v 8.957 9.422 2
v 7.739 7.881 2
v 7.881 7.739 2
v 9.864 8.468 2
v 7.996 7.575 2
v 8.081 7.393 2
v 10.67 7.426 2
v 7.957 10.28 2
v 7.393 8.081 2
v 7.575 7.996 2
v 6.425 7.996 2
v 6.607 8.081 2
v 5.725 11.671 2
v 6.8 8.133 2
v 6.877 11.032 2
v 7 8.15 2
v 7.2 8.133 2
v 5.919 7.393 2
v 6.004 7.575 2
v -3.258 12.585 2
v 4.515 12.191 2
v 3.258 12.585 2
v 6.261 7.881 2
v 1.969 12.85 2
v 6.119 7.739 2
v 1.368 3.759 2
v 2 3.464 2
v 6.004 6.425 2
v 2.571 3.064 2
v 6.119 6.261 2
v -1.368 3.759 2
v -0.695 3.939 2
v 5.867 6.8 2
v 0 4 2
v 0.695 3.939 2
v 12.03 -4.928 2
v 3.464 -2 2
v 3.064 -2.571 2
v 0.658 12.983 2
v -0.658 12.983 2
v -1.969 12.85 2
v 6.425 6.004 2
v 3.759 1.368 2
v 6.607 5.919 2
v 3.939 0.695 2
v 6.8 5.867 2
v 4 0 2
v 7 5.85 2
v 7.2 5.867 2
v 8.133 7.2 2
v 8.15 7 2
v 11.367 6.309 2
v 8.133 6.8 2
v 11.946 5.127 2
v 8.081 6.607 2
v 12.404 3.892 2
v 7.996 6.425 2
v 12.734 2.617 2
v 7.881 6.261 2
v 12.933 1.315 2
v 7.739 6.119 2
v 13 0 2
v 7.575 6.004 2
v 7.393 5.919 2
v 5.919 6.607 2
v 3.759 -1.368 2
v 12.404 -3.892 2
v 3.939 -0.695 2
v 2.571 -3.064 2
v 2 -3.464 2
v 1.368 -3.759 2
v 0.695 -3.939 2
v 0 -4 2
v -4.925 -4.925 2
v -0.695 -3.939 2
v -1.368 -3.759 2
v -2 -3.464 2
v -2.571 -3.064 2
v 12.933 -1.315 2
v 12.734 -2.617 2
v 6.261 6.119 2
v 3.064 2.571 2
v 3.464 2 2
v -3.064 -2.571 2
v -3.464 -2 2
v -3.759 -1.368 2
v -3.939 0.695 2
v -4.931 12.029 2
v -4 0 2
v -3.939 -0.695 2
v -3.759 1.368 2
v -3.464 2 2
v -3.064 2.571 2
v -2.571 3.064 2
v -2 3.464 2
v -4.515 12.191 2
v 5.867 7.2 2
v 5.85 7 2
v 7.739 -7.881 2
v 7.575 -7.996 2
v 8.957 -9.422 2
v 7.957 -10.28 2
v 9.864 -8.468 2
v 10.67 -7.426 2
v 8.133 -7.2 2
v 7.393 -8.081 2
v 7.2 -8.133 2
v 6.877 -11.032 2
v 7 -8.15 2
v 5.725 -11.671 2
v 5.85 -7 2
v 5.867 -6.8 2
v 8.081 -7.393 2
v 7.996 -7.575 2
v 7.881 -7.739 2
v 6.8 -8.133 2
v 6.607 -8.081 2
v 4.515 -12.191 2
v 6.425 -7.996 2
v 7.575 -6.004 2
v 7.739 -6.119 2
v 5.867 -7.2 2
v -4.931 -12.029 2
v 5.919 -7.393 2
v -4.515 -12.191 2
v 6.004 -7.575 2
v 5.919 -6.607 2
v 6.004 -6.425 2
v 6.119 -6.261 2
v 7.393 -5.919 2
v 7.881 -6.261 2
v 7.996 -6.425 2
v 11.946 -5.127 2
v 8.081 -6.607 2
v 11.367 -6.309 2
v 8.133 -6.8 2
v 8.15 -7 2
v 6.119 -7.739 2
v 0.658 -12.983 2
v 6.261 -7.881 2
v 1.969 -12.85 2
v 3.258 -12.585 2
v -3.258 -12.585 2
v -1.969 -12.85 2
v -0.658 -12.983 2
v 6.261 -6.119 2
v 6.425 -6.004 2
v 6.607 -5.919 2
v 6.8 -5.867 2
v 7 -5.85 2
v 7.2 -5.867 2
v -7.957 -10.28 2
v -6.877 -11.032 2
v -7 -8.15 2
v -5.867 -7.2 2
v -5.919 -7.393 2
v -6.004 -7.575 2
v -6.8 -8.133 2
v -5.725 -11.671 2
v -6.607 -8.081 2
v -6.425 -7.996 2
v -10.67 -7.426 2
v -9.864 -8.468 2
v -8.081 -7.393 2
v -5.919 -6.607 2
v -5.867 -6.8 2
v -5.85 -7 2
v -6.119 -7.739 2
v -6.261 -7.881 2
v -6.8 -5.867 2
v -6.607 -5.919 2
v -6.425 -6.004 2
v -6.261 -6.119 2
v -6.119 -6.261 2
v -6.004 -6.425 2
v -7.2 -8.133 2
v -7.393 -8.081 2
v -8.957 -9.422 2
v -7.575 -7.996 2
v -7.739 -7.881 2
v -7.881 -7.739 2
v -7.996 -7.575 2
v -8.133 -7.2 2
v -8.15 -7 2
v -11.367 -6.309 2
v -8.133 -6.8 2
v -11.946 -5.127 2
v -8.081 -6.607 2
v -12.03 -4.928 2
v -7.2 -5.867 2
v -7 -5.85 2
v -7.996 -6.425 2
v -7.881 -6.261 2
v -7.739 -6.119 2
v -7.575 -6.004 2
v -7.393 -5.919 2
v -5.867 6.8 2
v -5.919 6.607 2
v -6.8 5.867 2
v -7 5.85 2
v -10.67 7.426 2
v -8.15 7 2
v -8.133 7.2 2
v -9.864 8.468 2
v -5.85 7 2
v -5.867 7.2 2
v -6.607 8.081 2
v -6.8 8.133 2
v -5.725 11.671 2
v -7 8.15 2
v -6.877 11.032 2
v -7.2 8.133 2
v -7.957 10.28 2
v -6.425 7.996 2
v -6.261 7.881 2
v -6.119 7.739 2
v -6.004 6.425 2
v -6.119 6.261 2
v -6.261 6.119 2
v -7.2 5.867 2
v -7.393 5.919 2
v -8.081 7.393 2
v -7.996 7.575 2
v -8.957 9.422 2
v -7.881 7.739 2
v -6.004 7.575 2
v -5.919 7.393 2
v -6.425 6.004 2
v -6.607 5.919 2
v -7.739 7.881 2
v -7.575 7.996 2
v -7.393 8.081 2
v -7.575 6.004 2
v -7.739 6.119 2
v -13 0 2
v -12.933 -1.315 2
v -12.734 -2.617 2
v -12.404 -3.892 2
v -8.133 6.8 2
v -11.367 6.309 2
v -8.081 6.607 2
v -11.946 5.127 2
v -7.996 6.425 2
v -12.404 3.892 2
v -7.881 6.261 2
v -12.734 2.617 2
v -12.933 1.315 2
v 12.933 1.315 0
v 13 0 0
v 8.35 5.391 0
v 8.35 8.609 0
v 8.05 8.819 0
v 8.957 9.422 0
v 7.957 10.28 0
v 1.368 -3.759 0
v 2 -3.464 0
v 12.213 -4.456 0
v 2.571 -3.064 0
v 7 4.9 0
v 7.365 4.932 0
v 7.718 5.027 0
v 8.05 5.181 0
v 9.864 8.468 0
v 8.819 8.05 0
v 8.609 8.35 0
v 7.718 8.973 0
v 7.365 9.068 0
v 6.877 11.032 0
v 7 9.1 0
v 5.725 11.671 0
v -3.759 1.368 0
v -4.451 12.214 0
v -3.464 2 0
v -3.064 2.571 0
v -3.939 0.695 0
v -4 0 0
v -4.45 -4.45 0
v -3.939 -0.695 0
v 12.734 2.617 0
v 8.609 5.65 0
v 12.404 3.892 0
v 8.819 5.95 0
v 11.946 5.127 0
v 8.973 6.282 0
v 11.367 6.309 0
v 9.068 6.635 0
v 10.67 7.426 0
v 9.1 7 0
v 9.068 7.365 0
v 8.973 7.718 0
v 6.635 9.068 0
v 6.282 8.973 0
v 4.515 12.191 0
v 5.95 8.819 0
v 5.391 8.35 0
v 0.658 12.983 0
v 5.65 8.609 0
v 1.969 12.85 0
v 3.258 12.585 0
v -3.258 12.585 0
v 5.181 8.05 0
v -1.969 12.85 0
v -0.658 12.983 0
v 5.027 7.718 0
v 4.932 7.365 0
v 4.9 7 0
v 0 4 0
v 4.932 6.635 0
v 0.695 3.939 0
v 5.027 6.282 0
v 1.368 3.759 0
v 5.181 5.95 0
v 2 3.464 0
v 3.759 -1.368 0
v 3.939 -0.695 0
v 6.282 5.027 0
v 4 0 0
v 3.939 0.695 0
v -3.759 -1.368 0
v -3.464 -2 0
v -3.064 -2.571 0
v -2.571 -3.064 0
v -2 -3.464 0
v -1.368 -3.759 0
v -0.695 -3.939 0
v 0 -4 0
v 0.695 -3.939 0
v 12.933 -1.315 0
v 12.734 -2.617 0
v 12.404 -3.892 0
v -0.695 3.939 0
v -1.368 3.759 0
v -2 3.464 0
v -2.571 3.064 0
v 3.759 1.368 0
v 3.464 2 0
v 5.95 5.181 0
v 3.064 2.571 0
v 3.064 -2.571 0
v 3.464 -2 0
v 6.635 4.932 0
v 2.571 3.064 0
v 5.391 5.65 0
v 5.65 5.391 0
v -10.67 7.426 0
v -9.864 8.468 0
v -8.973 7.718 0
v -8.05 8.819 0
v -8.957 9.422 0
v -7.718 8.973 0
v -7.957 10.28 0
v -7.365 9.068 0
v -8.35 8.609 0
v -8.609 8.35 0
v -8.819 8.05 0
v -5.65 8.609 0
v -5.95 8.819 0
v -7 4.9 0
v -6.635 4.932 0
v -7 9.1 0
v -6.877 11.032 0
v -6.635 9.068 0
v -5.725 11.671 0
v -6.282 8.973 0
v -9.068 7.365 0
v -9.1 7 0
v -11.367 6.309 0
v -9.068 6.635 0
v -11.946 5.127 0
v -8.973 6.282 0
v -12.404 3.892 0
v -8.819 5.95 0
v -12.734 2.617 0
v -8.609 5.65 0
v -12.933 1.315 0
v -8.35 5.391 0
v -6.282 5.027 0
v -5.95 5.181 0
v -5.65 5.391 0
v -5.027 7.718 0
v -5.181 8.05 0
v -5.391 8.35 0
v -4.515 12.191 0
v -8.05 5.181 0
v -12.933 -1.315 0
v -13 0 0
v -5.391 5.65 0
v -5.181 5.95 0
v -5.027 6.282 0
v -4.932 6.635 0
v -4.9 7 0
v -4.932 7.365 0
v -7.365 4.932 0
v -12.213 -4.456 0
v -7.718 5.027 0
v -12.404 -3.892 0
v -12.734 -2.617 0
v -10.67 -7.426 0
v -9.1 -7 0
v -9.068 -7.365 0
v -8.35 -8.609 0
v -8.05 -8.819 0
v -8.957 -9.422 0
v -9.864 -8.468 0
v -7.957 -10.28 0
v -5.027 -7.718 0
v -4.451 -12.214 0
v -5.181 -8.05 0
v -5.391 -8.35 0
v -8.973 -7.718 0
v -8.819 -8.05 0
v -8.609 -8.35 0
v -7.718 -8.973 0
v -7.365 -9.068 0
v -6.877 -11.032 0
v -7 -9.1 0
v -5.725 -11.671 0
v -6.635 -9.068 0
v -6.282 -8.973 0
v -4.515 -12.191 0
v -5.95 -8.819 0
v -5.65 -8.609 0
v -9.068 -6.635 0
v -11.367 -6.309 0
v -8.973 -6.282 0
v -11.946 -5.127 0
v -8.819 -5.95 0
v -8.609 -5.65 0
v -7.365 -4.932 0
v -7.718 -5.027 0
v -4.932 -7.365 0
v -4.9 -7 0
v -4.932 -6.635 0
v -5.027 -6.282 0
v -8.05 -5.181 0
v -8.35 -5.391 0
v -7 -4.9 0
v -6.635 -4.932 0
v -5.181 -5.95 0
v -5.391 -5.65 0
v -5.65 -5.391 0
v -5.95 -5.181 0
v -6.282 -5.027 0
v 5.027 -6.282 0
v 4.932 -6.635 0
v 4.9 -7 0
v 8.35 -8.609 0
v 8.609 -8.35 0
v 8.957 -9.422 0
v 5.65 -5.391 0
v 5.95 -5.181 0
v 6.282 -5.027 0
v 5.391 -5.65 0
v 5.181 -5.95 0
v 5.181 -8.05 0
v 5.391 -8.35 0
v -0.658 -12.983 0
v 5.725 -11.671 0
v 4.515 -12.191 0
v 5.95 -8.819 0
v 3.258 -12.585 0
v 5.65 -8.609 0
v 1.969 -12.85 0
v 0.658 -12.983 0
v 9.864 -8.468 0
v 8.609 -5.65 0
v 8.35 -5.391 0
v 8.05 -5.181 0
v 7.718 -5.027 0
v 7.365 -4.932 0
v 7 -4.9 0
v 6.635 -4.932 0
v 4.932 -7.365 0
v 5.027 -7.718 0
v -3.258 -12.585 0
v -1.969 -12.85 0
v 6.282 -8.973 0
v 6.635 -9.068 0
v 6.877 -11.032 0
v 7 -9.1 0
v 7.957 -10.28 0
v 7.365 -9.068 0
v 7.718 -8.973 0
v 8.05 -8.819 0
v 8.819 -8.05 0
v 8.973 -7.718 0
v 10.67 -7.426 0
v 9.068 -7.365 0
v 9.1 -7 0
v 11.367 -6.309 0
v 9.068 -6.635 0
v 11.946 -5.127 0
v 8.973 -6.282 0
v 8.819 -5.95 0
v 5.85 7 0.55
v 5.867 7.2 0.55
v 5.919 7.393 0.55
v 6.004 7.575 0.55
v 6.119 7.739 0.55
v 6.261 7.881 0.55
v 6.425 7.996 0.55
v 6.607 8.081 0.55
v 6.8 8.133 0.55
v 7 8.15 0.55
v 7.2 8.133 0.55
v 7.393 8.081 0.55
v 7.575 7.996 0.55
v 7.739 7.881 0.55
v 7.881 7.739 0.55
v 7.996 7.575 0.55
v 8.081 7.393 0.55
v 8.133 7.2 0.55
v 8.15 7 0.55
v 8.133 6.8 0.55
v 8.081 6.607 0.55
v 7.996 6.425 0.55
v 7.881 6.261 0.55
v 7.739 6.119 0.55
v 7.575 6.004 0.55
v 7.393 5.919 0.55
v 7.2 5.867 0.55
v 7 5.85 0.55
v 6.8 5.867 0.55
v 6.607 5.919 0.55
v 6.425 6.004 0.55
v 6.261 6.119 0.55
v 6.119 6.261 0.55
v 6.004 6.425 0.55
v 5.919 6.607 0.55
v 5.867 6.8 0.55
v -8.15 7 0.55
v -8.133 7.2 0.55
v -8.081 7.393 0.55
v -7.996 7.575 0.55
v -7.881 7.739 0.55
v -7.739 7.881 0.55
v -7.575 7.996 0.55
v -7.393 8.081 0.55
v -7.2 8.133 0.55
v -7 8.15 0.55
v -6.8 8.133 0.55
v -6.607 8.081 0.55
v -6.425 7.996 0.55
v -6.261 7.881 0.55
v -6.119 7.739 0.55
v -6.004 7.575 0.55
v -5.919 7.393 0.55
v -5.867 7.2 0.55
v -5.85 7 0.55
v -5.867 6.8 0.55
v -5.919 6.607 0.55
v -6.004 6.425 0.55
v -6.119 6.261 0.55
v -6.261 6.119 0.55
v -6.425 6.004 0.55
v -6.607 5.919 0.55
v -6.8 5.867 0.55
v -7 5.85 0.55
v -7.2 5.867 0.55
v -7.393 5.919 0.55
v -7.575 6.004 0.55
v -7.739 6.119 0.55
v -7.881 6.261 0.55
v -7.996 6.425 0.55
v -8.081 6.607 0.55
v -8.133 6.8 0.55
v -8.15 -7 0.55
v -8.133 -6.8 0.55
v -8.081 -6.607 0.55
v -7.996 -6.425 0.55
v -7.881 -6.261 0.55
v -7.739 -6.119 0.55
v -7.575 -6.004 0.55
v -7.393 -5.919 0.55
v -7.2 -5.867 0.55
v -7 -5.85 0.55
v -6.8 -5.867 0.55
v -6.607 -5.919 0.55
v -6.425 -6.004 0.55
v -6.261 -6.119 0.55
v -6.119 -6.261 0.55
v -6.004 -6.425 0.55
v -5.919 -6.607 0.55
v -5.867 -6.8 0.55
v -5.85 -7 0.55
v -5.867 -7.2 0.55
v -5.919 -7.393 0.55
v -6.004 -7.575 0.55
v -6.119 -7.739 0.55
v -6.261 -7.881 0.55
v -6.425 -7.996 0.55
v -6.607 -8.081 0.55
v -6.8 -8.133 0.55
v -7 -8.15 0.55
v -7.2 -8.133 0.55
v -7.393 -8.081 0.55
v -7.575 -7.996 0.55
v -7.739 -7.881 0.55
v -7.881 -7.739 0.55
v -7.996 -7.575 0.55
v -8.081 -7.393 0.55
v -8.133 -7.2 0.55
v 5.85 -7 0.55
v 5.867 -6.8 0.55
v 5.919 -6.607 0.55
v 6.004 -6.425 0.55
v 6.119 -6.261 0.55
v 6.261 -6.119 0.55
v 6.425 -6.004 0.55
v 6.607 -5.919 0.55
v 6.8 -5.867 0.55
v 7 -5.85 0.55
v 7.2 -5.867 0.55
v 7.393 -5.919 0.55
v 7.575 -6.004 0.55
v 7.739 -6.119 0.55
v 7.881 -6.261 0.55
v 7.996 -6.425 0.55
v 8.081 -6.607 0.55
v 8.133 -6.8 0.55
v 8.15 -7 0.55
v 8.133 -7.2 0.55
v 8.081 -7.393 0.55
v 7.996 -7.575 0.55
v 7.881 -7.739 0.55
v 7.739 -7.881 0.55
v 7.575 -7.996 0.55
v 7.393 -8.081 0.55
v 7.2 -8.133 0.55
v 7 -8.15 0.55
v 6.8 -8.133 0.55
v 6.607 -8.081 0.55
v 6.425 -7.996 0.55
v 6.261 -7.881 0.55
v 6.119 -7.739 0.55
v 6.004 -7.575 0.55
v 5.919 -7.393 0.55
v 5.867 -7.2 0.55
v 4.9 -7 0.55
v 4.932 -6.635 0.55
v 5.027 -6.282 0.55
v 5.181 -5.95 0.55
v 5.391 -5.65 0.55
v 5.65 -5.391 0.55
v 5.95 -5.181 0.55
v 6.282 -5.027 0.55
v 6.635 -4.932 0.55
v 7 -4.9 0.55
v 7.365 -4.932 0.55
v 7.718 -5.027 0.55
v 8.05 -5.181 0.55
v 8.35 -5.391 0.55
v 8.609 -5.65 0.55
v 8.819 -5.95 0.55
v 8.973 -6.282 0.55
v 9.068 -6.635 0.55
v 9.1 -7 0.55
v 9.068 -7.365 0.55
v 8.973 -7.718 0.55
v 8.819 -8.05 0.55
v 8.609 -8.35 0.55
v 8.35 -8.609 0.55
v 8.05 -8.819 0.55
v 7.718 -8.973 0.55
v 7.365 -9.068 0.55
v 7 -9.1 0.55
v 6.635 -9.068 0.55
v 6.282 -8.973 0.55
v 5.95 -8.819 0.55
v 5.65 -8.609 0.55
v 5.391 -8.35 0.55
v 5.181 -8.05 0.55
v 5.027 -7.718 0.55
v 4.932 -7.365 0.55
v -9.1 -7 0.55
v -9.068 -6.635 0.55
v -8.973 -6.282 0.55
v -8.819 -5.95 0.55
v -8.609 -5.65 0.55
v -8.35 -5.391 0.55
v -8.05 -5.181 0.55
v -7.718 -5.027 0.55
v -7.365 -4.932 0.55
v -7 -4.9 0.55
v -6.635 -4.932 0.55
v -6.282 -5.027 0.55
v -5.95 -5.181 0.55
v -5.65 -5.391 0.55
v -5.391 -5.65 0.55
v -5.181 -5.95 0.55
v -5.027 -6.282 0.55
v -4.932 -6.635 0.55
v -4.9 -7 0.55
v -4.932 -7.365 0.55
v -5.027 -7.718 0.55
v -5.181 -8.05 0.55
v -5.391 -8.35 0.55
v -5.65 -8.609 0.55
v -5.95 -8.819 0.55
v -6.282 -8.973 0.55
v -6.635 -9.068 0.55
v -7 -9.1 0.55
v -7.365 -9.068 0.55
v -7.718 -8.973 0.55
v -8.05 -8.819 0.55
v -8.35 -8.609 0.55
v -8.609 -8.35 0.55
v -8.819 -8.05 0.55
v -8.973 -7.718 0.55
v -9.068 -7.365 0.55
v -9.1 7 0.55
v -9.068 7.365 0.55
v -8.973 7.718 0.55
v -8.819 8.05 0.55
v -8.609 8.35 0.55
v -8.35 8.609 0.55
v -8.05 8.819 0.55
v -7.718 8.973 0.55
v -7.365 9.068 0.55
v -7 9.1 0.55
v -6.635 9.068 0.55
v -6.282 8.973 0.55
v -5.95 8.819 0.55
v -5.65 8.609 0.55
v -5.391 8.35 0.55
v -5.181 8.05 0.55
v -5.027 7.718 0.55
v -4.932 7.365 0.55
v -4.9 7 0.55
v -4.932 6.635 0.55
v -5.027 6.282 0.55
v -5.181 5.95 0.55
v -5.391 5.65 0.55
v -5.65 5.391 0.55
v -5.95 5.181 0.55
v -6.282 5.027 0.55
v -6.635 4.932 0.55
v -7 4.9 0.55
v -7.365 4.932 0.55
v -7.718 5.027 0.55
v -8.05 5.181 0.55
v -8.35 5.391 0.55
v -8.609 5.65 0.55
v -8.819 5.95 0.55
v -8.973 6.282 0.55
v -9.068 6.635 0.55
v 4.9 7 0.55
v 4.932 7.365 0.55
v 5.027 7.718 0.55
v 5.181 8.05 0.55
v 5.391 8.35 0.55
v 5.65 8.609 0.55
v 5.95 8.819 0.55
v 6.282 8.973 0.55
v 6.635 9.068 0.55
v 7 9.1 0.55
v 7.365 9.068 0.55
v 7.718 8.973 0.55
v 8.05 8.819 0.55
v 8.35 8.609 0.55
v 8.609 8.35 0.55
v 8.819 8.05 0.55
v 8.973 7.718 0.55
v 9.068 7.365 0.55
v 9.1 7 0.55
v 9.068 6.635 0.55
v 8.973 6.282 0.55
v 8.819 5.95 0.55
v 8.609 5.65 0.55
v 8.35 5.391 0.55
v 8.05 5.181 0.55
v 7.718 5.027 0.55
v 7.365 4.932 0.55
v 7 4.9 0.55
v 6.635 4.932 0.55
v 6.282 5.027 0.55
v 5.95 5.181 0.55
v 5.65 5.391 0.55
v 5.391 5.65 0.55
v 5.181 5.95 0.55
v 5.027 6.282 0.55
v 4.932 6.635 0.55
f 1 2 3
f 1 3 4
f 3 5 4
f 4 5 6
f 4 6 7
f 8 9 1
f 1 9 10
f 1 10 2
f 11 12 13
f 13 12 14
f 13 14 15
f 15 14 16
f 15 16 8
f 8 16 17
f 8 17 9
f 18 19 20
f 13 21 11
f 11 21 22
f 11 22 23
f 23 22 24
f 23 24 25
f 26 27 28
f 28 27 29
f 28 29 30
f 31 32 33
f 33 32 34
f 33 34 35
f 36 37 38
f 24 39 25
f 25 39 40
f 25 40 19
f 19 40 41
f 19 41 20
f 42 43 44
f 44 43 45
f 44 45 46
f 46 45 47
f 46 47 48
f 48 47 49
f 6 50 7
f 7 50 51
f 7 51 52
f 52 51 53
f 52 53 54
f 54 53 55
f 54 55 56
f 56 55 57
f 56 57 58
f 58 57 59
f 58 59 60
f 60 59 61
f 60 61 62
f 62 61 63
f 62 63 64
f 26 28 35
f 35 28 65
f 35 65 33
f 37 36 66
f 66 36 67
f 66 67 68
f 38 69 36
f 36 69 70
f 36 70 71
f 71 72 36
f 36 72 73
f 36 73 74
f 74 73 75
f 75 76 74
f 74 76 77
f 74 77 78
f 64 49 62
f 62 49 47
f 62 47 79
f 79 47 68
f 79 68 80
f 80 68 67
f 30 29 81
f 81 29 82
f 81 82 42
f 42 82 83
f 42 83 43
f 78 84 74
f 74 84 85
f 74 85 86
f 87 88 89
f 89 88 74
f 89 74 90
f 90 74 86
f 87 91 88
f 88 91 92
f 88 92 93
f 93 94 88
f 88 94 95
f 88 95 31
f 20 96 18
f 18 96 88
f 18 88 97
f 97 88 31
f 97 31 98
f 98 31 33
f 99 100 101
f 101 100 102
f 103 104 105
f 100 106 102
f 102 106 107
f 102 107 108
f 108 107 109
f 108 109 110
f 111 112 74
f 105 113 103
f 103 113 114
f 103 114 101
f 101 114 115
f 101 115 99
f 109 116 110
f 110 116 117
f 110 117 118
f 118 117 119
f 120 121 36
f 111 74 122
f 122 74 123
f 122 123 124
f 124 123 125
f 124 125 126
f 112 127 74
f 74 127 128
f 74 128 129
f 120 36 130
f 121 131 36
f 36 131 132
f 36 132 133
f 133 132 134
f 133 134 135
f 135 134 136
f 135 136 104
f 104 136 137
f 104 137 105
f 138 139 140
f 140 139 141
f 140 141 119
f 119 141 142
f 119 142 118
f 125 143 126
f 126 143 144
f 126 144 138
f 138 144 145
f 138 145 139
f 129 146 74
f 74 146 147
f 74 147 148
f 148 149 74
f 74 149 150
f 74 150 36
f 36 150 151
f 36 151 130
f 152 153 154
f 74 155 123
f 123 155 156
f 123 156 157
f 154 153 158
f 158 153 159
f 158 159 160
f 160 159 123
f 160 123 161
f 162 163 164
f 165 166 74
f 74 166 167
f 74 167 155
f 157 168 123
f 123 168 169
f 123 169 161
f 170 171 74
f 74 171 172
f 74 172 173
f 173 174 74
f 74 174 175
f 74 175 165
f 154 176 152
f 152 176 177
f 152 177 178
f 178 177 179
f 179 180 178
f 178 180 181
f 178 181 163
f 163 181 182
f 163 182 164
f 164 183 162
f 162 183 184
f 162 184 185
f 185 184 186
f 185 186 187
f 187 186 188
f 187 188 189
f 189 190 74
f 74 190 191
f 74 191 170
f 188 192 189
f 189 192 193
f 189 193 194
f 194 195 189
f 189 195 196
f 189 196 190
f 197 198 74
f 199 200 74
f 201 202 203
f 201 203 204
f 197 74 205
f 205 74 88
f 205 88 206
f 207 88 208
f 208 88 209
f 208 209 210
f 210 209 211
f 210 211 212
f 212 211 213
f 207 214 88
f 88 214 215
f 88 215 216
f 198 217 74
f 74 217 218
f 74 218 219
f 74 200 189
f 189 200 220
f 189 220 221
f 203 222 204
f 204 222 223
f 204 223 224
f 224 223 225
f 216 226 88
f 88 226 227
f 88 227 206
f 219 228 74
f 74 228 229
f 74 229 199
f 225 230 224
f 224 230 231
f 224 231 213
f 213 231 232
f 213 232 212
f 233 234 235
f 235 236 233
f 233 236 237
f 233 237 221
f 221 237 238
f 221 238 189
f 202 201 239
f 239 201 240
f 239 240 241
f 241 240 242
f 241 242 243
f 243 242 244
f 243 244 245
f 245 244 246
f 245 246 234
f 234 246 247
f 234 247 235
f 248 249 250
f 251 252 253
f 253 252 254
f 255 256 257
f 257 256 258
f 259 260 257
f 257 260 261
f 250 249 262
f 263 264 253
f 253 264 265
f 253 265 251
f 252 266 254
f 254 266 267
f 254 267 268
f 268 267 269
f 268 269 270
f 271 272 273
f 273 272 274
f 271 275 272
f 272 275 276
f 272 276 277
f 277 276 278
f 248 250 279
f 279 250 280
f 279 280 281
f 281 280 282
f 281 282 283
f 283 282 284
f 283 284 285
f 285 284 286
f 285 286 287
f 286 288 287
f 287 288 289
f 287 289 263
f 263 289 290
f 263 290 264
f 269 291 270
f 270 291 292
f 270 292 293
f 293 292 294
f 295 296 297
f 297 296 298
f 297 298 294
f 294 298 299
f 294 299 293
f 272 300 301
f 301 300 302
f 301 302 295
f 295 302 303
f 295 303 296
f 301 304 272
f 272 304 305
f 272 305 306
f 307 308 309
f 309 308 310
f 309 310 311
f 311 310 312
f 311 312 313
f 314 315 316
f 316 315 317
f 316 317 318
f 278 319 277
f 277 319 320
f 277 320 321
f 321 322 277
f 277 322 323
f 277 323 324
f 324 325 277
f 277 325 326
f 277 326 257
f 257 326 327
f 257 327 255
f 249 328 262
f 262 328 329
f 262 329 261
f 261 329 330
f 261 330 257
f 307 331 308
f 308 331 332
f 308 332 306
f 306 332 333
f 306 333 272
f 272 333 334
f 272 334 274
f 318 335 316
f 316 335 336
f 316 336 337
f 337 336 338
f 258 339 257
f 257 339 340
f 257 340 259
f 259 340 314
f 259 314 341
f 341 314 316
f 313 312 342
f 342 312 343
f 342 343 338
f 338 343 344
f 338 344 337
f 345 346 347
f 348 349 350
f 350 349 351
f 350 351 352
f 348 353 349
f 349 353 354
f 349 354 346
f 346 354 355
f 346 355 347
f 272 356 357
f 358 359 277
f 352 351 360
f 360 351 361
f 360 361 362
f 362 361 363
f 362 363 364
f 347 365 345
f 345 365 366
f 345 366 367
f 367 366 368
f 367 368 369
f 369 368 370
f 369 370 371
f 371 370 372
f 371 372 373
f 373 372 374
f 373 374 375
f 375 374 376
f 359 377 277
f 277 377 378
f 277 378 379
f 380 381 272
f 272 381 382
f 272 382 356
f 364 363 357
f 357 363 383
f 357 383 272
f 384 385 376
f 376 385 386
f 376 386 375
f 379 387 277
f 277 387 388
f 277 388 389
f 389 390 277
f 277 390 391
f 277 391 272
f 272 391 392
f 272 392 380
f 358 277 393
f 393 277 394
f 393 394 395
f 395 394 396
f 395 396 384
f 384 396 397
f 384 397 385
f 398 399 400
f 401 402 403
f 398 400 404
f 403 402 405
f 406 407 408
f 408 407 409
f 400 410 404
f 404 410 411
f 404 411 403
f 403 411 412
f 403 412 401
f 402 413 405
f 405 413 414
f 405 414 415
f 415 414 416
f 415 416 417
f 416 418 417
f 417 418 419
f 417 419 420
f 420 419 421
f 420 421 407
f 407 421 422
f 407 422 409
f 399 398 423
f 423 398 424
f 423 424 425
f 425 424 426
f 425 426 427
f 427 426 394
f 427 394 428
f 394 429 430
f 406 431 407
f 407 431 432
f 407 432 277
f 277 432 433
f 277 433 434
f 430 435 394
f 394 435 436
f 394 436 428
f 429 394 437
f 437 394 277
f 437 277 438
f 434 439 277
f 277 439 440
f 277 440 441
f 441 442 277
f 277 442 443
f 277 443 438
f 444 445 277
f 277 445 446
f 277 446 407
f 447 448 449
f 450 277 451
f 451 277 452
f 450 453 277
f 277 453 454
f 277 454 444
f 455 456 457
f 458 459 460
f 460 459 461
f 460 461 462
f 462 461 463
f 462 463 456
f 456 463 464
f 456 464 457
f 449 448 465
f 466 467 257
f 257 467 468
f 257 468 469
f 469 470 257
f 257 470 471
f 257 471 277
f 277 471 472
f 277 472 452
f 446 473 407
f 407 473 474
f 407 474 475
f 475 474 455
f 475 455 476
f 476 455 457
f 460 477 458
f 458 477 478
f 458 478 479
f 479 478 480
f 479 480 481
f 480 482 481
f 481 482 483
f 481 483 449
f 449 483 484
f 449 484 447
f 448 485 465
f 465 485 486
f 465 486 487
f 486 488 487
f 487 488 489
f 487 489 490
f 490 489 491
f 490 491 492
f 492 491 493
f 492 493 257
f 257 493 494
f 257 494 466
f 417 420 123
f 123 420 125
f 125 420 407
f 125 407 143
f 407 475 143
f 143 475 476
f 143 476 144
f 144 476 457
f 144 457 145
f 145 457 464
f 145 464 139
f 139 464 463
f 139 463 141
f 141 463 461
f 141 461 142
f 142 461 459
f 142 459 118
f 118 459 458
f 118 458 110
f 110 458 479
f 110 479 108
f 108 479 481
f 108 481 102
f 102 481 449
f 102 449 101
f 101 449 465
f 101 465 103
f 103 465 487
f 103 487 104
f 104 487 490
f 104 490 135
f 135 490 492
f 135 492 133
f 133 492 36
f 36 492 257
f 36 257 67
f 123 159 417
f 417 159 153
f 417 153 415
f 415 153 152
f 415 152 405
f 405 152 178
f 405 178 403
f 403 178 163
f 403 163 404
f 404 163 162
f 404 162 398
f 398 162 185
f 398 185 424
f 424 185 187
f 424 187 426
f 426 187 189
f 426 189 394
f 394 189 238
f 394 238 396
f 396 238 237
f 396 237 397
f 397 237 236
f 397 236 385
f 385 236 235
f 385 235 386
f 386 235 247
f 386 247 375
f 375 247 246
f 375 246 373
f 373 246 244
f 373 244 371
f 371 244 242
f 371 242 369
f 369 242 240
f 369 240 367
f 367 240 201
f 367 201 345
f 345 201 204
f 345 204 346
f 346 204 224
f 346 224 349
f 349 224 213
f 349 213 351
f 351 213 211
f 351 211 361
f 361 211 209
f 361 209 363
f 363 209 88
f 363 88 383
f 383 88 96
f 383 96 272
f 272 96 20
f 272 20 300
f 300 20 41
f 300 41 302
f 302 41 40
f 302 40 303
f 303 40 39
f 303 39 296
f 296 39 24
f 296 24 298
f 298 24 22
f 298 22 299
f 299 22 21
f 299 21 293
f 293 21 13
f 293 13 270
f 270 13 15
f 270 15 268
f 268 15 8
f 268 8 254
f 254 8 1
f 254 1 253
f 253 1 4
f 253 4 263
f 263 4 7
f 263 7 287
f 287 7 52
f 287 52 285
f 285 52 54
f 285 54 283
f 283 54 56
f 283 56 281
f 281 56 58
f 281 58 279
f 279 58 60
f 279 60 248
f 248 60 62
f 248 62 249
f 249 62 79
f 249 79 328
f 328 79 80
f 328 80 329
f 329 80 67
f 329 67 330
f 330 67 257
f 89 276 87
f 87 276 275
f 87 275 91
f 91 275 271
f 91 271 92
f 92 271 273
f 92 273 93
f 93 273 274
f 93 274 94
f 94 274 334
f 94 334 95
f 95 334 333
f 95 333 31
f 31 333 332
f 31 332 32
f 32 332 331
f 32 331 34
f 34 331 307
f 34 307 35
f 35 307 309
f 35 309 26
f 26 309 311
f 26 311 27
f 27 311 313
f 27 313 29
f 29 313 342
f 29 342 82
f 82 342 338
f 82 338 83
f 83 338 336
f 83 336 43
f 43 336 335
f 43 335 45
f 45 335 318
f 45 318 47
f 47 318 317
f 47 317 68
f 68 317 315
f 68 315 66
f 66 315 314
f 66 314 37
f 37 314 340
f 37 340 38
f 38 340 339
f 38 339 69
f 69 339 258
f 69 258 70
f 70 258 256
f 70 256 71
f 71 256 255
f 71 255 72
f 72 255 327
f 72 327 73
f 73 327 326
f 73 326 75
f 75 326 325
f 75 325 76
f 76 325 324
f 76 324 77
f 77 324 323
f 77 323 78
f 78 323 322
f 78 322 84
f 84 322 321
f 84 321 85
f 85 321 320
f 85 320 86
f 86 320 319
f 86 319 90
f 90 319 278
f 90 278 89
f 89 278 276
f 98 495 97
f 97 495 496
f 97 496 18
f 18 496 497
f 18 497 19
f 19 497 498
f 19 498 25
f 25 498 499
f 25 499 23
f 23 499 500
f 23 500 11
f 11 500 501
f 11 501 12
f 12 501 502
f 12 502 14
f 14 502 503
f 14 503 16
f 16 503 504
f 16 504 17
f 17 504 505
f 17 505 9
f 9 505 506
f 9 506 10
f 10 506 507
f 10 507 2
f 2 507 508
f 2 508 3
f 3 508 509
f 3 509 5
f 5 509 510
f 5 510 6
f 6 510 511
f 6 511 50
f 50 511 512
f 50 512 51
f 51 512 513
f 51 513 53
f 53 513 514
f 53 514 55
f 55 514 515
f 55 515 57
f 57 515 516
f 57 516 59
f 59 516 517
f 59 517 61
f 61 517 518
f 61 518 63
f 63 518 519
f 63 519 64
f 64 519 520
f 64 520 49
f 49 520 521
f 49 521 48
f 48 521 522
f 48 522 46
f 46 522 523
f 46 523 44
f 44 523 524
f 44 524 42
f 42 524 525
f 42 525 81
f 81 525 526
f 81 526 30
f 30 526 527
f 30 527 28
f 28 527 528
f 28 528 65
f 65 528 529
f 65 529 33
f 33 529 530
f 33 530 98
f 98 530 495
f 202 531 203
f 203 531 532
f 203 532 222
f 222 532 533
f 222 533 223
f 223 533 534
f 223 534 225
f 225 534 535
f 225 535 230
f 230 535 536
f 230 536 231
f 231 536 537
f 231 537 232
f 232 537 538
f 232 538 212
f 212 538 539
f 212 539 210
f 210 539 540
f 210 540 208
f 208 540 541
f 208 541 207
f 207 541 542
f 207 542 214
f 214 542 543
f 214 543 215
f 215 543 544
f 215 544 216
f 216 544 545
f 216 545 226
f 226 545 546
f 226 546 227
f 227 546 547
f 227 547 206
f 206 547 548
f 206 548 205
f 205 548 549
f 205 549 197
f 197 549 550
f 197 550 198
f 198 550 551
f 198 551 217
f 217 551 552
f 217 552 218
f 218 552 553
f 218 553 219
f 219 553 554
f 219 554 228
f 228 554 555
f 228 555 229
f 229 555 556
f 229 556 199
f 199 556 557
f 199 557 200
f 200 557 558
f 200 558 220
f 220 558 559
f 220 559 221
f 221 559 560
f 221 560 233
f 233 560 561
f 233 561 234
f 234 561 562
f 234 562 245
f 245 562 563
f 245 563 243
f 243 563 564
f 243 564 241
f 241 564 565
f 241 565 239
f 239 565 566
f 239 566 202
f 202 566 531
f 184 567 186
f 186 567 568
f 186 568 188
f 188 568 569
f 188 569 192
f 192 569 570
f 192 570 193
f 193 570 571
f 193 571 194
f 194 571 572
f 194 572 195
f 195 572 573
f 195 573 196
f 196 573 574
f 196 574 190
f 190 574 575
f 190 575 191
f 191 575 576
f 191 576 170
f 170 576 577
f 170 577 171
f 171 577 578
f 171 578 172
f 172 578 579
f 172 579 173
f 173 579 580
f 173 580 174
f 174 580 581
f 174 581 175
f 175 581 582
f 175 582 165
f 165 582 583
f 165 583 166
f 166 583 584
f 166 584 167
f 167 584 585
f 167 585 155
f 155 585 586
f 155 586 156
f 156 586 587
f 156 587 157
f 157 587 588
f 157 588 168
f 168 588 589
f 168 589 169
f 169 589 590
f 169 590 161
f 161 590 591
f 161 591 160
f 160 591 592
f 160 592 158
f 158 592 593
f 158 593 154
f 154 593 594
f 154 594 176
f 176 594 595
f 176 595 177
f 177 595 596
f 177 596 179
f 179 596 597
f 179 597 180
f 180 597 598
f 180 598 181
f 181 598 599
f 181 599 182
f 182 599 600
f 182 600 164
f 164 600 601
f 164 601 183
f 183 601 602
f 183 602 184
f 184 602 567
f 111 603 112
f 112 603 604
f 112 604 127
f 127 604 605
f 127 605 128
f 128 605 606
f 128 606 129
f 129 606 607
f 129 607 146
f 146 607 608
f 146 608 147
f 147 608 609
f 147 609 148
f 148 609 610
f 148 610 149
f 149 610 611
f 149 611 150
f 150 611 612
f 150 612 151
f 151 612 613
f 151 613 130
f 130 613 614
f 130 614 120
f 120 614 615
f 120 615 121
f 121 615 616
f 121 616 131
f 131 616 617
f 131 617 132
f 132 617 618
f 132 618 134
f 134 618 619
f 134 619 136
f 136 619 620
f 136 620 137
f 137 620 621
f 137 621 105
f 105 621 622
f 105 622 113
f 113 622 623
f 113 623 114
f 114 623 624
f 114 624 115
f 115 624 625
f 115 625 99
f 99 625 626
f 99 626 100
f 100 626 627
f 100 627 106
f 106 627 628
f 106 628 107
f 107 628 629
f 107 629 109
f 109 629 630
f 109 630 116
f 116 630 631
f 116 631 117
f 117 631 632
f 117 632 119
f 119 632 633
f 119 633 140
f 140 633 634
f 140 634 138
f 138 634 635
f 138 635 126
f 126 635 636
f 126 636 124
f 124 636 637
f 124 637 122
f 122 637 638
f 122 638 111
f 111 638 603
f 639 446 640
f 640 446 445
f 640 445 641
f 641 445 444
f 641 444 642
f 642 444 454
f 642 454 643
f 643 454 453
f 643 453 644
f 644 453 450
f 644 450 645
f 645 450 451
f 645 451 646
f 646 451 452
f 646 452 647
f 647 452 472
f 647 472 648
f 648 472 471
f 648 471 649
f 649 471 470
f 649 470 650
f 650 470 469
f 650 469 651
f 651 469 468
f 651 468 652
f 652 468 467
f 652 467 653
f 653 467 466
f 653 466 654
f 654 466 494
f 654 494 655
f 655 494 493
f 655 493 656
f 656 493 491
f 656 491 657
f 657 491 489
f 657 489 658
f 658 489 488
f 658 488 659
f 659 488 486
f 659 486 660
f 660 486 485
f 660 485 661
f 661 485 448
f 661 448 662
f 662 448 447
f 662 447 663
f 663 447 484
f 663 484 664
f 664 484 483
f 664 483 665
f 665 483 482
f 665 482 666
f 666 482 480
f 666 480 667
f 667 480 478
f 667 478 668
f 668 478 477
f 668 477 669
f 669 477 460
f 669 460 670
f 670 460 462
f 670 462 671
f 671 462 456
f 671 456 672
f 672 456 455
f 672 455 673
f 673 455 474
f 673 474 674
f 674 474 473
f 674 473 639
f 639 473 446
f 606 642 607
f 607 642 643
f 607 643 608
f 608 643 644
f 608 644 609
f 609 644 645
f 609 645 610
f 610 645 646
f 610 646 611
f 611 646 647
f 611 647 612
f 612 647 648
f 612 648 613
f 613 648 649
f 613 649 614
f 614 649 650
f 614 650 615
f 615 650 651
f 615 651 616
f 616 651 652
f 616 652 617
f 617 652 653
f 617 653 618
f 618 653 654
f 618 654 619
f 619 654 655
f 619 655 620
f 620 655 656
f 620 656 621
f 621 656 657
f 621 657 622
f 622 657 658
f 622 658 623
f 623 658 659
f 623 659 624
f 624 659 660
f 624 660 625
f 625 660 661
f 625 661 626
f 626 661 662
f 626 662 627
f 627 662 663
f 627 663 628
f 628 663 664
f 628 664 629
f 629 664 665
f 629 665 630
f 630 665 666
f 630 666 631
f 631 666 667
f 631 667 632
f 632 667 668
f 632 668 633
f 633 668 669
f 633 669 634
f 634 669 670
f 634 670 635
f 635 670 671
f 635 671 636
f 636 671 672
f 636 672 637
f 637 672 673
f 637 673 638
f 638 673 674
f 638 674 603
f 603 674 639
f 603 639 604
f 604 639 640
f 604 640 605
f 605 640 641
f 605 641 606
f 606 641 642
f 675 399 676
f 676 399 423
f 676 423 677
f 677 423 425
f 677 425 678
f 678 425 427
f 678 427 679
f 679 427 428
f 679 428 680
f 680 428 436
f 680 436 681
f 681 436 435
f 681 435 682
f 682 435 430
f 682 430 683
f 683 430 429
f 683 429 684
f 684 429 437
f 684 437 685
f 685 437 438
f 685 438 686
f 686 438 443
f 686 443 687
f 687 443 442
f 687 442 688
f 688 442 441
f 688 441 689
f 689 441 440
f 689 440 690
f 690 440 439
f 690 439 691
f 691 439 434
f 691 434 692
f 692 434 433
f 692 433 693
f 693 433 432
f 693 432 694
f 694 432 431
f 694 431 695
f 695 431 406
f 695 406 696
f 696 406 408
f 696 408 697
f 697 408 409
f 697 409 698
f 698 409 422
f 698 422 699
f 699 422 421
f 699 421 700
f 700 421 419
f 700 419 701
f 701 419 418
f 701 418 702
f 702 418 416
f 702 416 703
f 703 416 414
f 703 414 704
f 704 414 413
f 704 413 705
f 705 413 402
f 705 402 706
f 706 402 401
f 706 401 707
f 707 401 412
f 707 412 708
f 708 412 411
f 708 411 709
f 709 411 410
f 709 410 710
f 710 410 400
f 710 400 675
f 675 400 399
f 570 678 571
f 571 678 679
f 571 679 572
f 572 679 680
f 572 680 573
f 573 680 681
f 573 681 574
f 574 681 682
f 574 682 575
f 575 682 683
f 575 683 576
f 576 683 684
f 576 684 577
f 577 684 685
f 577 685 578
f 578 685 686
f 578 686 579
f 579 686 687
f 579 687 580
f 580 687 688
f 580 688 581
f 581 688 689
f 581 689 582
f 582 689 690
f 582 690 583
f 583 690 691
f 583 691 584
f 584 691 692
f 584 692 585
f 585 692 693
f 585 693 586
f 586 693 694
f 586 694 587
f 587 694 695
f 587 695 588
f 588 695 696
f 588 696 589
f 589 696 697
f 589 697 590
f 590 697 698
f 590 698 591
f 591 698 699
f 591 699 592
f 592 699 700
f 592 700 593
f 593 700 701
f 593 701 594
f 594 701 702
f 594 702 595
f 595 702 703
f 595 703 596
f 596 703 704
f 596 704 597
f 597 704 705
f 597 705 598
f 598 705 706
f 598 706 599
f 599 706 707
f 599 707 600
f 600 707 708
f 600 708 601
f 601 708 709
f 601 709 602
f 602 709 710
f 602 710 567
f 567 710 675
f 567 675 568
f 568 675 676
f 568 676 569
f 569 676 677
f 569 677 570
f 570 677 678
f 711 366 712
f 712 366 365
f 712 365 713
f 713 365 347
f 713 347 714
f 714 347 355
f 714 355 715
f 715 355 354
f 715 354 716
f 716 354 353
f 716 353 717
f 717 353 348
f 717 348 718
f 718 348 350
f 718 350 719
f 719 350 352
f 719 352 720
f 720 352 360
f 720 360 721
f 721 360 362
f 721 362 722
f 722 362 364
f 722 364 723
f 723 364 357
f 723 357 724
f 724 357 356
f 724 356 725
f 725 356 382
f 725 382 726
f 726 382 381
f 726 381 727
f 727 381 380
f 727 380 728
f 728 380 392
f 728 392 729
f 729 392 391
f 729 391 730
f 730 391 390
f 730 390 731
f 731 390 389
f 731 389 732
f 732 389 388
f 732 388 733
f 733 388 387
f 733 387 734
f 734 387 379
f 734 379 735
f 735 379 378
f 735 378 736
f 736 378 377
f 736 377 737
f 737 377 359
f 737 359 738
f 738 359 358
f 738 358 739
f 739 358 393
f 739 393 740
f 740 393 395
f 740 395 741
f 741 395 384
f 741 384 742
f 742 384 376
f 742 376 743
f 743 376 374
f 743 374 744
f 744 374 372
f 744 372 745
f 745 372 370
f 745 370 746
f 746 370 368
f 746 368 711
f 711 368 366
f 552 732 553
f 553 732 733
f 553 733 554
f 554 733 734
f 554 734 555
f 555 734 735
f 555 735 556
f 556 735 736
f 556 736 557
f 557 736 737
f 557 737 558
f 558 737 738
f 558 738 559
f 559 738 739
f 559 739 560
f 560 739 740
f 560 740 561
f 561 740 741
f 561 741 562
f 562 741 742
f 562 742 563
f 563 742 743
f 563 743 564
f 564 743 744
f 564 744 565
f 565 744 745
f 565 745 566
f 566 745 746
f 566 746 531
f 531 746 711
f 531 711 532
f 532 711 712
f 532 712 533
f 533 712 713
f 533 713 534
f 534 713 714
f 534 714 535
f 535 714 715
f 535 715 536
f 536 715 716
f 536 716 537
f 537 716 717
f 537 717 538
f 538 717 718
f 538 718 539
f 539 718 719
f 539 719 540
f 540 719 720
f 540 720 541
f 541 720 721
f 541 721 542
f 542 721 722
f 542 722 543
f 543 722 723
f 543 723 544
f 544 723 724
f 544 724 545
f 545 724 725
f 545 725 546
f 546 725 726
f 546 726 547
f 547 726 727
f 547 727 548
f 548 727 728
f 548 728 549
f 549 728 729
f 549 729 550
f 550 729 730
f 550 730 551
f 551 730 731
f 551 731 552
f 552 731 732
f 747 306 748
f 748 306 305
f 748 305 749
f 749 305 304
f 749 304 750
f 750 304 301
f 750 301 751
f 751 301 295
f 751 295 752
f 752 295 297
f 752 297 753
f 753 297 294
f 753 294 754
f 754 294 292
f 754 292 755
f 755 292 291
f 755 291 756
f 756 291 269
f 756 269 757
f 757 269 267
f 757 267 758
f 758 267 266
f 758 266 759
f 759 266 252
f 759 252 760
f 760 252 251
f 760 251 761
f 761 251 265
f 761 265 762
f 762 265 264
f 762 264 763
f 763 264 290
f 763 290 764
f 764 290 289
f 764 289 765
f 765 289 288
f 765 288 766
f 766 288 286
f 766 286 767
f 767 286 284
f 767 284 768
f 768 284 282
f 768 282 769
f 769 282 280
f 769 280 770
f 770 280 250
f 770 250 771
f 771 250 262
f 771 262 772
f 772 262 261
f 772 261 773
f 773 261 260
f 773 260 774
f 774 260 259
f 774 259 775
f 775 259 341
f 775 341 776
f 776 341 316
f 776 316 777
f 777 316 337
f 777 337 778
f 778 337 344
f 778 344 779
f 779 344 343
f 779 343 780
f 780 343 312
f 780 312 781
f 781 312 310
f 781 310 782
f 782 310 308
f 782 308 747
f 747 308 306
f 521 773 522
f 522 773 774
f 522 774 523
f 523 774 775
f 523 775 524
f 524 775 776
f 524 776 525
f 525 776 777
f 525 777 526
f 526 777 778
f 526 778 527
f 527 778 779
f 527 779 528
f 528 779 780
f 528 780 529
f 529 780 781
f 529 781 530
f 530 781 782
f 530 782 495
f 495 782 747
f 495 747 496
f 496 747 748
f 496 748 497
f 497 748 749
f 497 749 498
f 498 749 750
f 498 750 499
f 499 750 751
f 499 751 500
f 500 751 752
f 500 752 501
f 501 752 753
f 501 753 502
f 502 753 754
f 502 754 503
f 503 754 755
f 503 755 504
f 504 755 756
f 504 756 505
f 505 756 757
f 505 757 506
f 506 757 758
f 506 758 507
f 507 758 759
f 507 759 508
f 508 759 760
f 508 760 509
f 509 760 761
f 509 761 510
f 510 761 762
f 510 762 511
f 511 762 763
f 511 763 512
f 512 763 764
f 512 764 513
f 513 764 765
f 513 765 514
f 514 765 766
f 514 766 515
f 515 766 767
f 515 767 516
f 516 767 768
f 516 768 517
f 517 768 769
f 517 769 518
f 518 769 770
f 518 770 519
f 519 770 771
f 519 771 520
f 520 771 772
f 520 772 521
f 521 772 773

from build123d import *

# Parameters (mm, degrees)
CAP_OD26_ID8_THICKNESS2_PROFILE_R   = 13
CAP_OD26_ID8_THICKNESS2_PROFILE_R_2 = 4
CAP_OD26_ID8_THICKNESS2_DEPTH       = 2
FOUR_M2_CAPTURE_HOLES_START         = -50
FOUR_M2_CAPTURE_HOLES_PROFILE_R     = 1.15
FOUR_M2_CAPTURE_HOLES_DEPTH         = 69.493242009
LOW_PROFILE_HEAD_SEATS_R            = 2.1
HEAD_RECESS_DEPTH0P55_DEPTH         = 0.55


with BuildPart() as part:
    # Cap_OD26_ID8_thickness2_profile → Cap_OD26_ID8_thickness2 (new body)
    with BuildSketch(Plane.XY):
        Circle(CAP_OD26_ID8_THICKNESS2_PROFILE_R)
        Circle(CAP_OD26_ID8_THICKNESS2_PROFILE_R_2, mode=Mode.SUBTRACT)
    extrude(amount=CAP_OD26_ID8_THICKNESS2_DEPTH)

    # Four_M2_capture_holes_profile → Four_M2_capture_holes (cut, through all)
    with BuildSketch(Plane.XY.offset(FOUR_M2_CAPTURE_HOLES_START)):
        with Locations((7, 7)):
            Circle(FOUR_M2_CAPTURE_HOLES_PROFILE_R)
        with Locations((-7, 7)):
            Circle(FOUR_M2_CAPTURE_HOLES_PROFILE_R)
        with Locations((-7, -7)):
            Circle(FOUR_M2_CAPTURE_HOLES_PROFILE_R)
        with Locations((7, -7)):
            Circle(FOUR_M2_CAPTURE_HOLES_PROFILE_R)
    extrude(amount=FOUR_M2_CAPTURE_HOLES_DEPTH, mode=Mode.SUBTRACT)

    # Low_profile_head_seats → Head_recess_depth0p55 (cut)
    with BuildSketch(Plane.XY):
        with Locations((7, 7)):
            Circle(LOW_PROFILE_HEAD_SEATS_R)
        with Locations((-7, 7)):
            Circle(LOW_PROFILE_HEAD_SEATS_R)
        with Locations((-7, -7)):
            Circle(LOW_PROFILE_HEAD_SEATS_R)
        with Locations((7, -7)):
            Circle(LOW_PROFILE_HEAD_SEATS_R)
    extrude(amount=HEAD_RECESS_DEPTH0P55_DEPTH, mode=Mode.SUBTRACT)


solid = part.part
